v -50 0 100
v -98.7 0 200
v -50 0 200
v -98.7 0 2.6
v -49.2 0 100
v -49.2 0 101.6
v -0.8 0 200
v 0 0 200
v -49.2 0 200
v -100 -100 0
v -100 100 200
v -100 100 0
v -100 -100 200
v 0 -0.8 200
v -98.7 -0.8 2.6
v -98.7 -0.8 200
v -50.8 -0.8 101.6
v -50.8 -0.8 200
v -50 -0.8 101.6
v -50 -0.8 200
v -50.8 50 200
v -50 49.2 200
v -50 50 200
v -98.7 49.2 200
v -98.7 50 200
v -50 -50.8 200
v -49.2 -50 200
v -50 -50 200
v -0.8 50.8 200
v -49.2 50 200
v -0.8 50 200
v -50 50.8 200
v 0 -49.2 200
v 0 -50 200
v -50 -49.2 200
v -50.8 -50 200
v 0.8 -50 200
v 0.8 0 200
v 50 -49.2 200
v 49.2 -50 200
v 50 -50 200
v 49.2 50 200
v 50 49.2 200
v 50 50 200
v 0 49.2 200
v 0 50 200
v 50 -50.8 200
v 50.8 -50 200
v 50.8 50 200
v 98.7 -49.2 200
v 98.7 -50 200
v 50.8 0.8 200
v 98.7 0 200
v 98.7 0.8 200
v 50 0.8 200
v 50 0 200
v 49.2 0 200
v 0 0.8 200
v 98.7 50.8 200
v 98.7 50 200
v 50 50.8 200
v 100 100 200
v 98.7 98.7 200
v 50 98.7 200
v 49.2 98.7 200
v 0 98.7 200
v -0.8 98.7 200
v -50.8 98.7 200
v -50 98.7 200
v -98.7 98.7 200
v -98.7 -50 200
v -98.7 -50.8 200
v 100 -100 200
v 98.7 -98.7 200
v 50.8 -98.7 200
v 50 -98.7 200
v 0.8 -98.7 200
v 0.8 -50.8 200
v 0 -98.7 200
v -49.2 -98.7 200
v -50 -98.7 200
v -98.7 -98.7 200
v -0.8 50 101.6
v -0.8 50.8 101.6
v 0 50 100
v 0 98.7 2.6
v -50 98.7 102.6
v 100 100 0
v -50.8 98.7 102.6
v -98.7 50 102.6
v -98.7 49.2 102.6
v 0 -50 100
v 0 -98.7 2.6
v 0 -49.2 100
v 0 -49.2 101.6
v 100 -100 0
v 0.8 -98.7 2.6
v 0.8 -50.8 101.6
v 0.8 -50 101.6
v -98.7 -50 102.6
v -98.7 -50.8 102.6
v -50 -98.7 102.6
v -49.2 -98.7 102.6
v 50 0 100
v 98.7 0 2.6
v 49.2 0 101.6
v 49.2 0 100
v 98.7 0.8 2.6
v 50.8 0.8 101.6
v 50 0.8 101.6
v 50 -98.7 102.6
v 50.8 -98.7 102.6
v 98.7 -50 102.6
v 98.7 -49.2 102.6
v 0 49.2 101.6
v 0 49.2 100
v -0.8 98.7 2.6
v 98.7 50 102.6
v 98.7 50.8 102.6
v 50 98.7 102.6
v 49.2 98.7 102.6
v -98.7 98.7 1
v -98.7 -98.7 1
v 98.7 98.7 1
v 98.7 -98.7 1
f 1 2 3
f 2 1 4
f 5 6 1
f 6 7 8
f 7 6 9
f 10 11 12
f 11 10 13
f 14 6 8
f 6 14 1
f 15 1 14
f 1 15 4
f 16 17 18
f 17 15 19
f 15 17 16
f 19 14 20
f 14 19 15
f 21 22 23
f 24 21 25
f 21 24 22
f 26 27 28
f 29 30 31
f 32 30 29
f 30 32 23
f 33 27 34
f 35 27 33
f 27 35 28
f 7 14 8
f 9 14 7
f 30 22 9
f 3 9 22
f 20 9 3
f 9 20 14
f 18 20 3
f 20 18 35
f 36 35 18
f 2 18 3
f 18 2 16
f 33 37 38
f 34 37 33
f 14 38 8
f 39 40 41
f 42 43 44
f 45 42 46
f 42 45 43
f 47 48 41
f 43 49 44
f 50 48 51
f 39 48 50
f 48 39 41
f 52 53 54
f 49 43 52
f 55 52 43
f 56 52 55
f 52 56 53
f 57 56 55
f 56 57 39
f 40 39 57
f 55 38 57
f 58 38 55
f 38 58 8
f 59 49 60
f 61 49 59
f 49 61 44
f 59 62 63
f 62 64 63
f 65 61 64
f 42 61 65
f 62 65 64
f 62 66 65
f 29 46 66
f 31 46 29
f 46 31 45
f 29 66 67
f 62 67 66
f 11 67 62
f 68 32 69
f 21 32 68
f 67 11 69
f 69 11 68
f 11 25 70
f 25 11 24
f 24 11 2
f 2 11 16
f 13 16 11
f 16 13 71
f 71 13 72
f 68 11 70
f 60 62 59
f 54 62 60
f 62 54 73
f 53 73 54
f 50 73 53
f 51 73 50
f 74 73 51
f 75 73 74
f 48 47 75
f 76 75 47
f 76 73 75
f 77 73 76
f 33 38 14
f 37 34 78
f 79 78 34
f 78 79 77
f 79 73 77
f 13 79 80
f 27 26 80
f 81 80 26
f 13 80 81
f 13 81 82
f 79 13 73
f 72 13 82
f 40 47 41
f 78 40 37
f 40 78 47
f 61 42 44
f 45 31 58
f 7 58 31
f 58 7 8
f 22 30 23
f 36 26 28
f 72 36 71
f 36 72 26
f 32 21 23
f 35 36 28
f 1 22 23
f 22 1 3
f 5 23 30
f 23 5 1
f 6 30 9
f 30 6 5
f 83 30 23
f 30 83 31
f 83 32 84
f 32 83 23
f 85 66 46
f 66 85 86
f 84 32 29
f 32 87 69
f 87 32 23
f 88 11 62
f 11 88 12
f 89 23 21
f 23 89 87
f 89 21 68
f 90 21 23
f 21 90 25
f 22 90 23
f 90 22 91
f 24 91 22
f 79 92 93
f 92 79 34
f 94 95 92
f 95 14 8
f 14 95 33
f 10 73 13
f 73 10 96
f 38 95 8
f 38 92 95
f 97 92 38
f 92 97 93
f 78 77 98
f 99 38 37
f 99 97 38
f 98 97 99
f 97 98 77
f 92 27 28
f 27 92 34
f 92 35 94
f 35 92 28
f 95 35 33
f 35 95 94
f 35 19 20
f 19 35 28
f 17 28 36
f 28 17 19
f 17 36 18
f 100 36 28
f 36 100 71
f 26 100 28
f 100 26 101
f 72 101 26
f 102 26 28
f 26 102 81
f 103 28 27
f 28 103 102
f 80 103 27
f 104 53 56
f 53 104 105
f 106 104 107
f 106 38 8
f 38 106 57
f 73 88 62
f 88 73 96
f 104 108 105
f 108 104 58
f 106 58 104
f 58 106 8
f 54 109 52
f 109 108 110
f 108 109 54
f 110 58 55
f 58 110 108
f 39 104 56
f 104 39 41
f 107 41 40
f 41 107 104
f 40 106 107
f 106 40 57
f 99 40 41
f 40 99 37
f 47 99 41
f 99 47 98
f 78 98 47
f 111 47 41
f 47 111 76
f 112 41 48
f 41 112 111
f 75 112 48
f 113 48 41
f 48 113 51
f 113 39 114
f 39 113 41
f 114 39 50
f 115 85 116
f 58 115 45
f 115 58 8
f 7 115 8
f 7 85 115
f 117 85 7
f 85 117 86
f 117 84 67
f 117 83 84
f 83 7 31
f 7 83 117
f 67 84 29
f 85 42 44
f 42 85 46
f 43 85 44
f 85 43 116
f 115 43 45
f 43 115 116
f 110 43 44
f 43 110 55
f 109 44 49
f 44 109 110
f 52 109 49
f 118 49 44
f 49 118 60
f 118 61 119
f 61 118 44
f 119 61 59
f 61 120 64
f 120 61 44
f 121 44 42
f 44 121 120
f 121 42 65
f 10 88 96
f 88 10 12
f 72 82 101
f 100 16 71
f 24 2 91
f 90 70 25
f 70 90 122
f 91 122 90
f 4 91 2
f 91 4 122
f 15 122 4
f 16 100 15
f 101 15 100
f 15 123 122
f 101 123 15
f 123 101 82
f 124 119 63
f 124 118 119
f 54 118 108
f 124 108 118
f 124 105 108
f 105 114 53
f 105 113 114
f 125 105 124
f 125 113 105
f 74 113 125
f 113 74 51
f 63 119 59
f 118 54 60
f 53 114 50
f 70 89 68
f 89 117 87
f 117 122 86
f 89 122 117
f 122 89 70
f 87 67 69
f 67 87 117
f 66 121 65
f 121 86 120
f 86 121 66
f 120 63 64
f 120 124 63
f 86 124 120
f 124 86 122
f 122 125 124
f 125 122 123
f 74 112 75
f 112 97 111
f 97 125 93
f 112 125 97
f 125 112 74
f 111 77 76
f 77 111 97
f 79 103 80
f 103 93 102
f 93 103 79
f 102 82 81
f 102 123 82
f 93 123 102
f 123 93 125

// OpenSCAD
sizeX = 200;
sizeY = sizeX;
sizeZ = sizeX;

tkSide = 1.3;
tkBot = 1.0;//for 0.3
tkSup = 0.8;

translate([-sizeX/2, -sizeY/2, 0]){
    difference(){
        cube([sizeX, sizeY, sizeZ]);
        translate([tkSide,tkSide,tkBot])
            cube([(sizeX-2*tkSide), (sizeY-2*tkSide), sizeZ]);
    }//diff
    supportL0();
    supportL0(pX=sizeX,rZ=90);
    supportL0(pX=sizeX, pY=sizeY,rZ=180);
    supportL0(pY=sizeY,rZ=270);
}//trans


module supportL0(pX=0, pY=0, pZ=0, rX=0, rY=0, rZ=0){
    translate([pX,pY,pZ])
    rotate([rX,rY,rZ])
    {
        translate([0,sizeY/2,0])
        rotate([90,0,0])
        linear_extrude(tkSup)
            polygon(points=[[0,0],[sizeX/2,sizeZ],[0,sizeZ]]);        
        supportL1();
        supportL1(pX=sizeX, pY=sizeY*0.5,rZ=90);
        supportL1(pX=sizeX/2, pY=sizeY*1.5,rZ=180);
        supportL1(pX=-sizeX/2, pY=sizeY,rZ=270);
    }
}//module supportL0

module supportL1(pX=0, pY=0, pZ=0, rX=0, rY=0, rZ=0){
    translate([pX,pY,pZ])
    rotate([rX,rY,rZ])
    {
        translate([sizeX/4,sizeY/2,0])
        rotate([90,0,90])
        linear_extrude(tkSup)
            polygon(points=[[0,sizeZ/2],[sizeX/4,sizeZ],[0,sizeZ]]);
    }
}//module supportL1
